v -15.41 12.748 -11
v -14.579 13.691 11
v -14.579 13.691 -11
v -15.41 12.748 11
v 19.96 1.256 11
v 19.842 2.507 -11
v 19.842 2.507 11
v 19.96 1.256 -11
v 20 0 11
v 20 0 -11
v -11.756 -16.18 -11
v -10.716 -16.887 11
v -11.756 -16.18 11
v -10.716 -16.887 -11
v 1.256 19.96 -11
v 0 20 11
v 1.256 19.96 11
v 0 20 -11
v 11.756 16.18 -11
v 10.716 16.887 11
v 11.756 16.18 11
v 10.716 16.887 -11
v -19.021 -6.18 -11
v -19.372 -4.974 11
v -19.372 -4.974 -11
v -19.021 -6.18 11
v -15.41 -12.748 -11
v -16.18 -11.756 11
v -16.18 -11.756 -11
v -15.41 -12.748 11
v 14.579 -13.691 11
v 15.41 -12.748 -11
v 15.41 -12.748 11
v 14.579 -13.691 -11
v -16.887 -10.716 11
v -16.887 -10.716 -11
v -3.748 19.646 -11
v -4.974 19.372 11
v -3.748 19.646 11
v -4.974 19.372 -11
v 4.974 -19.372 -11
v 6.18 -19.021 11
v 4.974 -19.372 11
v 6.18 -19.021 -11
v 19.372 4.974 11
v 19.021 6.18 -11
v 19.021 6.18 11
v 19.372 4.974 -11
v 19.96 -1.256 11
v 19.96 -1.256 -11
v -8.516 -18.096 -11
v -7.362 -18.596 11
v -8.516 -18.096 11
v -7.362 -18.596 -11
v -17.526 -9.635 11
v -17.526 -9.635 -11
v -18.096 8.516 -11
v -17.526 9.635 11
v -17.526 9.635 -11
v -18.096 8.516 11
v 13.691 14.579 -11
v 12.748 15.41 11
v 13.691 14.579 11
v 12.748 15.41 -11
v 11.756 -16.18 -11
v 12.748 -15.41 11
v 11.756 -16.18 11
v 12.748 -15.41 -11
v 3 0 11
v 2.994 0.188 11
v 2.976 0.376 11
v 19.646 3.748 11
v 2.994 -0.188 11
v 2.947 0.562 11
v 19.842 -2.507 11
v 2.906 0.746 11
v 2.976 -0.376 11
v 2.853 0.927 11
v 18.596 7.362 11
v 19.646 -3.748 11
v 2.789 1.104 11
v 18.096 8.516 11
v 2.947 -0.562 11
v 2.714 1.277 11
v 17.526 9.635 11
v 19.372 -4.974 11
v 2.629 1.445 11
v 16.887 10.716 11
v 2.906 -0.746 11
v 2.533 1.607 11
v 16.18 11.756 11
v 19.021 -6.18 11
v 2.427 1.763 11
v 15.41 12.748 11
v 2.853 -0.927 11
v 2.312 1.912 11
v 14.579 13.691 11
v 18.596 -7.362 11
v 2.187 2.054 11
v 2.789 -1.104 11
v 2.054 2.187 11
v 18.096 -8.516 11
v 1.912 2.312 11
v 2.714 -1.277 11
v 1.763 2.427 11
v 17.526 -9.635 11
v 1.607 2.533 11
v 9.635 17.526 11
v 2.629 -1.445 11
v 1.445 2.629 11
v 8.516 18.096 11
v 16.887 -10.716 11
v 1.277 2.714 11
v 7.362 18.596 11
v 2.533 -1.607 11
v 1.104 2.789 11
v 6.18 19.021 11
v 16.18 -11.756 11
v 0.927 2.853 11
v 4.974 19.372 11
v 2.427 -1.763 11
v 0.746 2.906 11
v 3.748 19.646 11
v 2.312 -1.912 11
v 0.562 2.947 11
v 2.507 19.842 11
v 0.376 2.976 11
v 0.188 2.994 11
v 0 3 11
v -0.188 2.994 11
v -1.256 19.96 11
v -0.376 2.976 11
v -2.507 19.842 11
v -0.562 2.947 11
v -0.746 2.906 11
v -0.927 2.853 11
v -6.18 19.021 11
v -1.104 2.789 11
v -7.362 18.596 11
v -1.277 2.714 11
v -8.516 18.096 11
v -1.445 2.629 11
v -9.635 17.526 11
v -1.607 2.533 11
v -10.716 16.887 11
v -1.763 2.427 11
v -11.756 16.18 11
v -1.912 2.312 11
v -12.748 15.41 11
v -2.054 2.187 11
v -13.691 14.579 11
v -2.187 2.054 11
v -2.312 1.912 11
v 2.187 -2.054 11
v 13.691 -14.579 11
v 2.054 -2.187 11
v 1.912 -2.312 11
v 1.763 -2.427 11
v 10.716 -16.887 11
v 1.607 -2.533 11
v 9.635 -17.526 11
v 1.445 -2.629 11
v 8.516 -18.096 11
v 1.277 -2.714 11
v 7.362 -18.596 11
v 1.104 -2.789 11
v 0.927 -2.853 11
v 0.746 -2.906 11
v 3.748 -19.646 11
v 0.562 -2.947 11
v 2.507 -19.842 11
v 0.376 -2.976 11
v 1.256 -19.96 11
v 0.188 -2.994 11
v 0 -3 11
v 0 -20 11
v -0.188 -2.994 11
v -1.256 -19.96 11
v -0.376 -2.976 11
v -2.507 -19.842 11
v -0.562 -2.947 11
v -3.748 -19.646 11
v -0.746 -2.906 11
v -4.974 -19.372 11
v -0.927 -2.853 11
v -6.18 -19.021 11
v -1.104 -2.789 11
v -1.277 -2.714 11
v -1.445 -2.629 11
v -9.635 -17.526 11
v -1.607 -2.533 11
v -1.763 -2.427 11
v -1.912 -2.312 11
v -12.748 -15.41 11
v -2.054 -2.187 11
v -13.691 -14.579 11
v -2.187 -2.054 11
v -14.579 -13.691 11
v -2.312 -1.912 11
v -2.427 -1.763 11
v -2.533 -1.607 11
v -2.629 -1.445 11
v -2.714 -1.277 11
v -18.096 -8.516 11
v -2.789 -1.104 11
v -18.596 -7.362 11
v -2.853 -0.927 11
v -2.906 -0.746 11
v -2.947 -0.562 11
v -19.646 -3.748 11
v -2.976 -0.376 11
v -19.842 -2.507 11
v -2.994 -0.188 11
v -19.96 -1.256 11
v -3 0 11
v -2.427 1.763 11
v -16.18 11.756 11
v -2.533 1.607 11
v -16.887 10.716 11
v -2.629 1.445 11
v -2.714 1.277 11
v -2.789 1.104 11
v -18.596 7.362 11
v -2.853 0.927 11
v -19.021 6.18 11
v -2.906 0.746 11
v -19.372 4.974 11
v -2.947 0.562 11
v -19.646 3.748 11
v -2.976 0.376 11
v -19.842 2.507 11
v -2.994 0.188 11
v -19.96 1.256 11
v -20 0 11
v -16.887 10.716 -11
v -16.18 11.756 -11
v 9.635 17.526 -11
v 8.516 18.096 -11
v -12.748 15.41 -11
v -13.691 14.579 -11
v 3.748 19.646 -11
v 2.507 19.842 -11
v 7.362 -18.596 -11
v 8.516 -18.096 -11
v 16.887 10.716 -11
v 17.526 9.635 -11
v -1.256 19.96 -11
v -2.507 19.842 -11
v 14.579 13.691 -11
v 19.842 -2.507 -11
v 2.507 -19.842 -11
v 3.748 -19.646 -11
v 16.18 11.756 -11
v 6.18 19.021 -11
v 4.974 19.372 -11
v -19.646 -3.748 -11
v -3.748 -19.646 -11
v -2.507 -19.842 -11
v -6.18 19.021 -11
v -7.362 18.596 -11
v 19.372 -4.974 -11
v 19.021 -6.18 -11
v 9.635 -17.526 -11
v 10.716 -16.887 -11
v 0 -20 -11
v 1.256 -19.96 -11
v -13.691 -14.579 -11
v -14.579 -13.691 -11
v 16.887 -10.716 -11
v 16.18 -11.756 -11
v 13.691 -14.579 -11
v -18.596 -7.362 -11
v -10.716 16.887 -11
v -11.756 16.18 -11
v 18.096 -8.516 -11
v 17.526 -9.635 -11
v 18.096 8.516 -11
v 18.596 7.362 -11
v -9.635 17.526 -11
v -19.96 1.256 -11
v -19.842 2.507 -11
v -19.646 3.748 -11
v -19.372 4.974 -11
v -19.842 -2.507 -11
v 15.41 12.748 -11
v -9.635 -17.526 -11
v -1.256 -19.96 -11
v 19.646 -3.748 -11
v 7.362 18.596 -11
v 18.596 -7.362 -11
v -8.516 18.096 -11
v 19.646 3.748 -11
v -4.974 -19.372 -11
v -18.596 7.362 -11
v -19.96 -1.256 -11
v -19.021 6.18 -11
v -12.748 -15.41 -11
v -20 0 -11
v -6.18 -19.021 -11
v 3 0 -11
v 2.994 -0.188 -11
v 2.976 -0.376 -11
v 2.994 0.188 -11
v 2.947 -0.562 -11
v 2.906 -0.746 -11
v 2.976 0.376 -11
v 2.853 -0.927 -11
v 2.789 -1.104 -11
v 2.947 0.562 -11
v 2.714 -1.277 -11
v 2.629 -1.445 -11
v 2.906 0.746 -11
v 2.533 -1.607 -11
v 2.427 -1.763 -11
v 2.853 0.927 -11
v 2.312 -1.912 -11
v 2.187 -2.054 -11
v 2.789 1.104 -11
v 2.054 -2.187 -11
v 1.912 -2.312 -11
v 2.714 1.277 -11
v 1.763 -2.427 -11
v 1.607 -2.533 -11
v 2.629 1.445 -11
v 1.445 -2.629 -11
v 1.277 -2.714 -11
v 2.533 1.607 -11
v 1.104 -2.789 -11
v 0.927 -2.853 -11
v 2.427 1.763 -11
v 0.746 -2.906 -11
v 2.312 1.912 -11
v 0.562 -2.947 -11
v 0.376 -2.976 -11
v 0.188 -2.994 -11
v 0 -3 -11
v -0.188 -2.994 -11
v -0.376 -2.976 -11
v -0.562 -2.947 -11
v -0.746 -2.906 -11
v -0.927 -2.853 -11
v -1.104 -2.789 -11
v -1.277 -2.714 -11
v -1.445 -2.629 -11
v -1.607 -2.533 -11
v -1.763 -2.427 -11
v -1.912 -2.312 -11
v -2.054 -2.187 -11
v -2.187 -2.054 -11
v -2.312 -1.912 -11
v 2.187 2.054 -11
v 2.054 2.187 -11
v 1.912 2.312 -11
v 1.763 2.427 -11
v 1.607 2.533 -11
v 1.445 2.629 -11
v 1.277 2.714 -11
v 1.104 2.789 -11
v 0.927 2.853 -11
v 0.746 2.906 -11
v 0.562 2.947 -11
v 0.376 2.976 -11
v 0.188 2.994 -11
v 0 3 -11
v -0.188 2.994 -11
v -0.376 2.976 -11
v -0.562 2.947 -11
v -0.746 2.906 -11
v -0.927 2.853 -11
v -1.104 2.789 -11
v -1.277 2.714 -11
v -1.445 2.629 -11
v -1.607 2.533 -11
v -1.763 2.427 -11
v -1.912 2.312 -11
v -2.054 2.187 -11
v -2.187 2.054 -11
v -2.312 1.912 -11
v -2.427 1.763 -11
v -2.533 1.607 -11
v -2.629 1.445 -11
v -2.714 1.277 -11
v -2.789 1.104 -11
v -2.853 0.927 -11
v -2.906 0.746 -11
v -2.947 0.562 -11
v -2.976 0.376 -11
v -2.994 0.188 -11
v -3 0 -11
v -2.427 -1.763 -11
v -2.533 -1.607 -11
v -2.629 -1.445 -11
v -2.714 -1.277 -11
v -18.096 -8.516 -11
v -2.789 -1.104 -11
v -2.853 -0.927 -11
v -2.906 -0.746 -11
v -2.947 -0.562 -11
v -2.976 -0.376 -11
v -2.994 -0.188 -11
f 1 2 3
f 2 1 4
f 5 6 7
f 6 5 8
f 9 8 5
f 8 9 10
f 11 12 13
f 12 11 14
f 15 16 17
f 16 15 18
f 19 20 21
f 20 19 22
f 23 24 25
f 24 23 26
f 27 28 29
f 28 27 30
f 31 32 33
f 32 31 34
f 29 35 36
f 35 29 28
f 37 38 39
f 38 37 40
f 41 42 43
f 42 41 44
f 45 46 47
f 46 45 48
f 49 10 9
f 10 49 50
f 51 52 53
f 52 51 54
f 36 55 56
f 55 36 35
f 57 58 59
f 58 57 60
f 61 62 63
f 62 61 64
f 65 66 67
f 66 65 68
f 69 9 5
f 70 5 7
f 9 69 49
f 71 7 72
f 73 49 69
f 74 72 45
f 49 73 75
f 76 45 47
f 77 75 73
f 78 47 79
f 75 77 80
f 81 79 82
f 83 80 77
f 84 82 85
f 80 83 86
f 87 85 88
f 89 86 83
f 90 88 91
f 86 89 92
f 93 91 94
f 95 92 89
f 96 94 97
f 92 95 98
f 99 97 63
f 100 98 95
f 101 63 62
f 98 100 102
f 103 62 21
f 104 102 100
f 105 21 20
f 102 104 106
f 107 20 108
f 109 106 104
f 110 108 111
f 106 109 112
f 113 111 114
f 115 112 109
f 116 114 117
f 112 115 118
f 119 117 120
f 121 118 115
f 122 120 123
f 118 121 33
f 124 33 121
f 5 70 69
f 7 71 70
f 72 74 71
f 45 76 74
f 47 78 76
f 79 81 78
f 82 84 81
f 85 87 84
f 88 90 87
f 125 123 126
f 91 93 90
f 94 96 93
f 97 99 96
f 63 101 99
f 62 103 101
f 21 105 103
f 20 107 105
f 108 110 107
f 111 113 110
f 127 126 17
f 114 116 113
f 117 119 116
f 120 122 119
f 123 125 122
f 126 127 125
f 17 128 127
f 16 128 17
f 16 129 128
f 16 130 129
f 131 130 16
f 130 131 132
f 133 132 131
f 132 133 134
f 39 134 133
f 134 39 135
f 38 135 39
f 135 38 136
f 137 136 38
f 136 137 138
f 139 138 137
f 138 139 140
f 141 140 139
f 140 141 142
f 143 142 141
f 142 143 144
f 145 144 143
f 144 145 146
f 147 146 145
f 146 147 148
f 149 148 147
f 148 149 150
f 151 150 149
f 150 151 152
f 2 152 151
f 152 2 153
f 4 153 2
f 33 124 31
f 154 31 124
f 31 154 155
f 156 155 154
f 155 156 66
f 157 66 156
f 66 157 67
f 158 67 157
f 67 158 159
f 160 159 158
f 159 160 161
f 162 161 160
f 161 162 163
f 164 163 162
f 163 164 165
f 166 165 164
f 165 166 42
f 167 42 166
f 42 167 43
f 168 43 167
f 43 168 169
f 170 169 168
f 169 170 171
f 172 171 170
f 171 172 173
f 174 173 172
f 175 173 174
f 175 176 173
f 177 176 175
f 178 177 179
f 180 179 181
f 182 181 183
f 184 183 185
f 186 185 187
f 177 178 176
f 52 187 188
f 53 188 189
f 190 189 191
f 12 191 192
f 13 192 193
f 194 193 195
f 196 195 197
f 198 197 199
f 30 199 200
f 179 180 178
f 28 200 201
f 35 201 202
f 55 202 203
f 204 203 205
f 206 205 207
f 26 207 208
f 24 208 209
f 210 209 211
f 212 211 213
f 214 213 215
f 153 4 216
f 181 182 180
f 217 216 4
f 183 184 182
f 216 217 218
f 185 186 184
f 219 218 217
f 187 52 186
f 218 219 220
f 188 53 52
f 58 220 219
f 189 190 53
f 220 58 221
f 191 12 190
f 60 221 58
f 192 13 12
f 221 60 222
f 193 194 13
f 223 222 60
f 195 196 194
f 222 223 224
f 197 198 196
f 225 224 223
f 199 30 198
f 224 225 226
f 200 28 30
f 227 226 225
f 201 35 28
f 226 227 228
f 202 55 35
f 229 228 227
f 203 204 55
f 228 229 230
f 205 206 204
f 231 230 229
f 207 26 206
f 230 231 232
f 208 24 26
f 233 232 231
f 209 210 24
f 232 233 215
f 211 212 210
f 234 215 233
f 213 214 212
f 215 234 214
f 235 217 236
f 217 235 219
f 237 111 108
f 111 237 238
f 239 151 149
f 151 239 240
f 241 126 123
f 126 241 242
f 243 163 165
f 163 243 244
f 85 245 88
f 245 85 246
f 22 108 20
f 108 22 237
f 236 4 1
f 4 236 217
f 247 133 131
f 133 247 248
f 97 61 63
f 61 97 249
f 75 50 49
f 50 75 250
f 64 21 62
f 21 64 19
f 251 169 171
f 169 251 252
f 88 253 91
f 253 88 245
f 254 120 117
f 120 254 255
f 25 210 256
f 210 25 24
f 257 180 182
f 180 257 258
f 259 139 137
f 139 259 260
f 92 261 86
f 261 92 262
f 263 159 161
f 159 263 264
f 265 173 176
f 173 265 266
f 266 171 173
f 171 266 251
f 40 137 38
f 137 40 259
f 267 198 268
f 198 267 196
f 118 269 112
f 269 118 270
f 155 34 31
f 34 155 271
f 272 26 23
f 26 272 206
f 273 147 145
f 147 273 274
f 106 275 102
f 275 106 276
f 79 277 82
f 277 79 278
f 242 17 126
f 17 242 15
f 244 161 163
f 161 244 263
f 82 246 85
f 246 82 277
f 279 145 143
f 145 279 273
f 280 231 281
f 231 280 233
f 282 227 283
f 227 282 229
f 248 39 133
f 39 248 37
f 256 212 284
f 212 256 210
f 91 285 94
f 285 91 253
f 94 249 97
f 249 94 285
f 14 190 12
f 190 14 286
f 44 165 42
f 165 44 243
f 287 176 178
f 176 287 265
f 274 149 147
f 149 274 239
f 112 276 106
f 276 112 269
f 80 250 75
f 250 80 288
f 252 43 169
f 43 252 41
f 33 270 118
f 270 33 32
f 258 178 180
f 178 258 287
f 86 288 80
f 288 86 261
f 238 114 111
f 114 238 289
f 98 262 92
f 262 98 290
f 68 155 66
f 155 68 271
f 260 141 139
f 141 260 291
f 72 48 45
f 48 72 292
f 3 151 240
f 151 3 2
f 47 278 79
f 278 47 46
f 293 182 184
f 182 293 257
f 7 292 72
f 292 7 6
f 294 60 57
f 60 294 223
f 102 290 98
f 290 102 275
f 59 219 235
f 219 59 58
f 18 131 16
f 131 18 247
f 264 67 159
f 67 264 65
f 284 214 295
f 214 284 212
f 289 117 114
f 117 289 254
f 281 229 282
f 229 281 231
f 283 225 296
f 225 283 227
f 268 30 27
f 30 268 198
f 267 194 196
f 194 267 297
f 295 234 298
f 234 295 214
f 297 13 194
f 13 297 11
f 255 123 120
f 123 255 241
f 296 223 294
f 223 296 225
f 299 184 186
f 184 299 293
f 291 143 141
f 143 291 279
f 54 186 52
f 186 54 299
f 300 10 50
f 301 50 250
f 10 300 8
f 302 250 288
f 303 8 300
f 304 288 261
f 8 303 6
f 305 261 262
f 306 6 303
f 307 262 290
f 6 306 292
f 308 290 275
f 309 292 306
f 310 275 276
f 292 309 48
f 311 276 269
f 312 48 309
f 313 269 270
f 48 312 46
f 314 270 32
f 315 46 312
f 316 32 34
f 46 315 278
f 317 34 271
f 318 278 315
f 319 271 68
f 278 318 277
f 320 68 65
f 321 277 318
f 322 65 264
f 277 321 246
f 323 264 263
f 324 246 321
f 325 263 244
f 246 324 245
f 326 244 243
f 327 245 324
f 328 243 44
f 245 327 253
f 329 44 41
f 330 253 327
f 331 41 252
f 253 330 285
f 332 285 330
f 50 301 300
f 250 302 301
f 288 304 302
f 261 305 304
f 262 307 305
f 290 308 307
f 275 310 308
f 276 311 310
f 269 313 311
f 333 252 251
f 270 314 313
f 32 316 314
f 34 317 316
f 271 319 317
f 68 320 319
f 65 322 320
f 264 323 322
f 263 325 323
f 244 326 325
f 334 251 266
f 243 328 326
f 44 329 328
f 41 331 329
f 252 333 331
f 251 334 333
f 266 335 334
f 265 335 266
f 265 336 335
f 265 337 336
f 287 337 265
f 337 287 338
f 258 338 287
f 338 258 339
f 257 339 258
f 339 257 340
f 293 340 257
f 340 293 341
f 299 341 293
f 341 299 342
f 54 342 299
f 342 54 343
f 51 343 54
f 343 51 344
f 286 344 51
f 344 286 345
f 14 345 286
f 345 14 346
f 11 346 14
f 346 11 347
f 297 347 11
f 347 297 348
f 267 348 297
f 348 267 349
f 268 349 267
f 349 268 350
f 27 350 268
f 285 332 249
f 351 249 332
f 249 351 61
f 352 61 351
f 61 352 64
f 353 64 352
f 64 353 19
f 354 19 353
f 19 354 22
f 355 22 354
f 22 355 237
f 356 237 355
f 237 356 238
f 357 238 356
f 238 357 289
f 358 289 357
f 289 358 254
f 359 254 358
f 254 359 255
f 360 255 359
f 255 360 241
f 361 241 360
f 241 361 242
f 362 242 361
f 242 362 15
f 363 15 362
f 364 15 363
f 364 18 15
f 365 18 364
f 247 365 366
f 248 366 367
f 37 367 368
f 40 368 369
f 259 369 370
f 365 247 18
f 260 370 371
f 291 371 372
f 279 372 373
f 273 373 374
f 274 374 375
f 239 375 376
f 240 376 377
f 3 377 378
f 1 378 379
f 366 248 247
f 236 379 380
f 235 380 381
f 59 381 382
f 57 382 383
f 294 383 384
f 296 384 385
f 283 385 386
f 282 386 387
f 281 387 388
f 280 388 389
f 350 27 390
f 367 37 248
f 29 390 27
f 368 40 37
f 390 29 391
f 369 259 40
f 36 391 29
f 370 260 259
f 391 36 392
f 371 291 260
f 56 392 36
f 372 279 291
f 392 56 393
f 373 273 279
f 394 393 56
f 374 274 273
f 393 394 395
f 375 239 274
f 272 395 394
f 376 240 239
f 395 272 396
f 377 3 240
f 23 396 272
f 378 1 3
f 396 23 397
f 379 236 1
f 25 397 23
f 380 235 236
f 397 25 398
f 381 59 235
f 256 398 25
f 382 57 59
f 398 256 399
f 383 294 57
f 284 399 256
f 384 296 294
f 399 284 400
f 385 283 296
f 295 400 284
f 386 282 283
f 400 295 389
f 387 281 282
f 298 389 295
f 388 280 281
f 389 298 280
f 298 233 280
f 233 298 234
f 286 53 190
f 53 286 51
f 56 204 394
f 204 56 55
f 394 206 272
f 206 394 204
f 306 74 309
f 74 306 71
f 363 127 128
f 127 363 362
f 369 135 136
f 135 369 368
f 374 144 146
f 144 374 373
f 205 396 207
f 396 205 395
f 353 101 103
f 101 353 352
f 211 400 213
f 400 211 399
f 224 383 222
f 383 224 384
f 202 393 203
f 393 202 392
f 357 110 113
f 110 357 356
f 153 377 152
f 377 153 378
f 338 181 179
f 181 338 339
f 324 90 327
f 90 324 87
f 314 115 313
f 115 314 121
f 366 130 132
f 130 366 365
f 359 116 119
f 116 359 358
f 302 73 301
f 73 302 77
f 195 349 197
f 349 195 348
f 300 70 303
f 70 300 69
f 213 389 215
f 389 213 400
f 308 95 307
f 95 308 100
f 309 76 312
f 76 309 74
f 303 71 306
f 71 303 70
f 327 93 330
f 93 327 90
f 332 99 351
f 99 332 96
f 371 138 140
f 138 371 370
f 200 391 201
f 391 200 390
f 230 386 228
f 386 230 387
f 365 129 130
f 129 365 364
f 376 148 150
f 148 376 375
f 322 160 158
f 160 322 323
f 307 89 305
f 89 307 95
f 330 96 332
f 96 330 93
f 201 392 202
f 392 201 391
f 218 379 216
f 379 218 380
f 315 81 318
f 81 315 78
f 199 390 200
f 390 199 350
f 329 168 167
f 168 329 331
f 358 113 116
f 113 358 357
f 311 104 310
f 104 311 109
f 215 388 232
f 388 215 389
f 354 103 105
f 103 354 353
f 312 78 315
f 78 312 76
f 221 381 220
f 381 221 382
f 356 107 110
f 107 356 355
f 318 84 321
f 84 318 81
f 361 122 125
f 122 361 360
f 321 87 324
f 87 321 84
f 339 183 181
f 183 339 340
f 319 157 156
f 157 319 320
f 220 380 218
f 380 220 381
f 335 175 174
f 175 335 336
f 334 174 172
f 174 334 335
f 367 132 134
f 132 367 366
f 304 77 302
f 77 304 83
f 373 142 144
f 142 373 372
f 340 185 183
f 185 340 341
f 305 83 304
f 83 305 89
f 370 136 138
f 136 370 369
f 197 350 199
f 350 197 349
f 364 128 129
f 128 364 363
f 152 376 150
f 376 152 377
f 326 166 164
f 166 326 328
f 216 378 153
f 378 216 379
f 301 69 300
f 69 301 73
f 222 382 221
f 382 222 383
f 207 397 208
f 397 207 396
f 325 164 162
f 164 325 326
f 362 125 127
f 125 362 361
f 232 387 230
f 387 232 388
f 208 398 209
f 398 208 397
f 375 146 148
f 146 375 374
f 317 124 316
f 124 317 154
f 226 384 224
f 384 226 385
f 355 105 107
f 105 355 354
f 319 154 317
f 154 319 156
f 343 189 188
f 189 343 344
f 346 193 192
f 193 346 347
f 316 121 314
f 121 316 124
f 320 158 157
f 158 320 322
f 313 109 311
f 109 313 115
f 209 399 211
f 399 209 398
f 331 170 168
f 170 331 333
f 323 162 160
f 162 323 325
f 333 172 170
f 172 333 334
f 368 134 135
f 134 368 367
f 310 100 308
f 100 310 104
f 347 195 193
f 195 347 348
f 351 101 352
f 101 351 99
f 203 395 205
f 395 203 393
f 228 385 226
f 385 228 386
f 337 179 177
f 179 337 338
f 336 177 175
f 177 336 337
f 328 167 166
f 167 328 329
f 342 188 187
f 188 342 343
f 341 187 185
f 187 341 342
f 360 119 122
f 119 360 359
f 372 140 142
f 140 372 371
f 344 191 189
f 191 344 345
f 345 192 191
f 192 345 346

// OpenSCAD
// Central Cylinder Parameters
cylinder_diameter = 40; // Diameter of the central cylinder
cylinder_height = 22;   // Increased height of the central cylinder to match the original model
hole_diameter = 6;      // Reduced diameter of the central hole to match the original model
$fn = 100;              // Increased resolution for smoother surface finish

// Central Cylinder Module
module central_cylinder() {
    difference() {
        // Main body of the cylinder
        cylinder(d = cylinder_diameter, h = cylinder_height, center = true);
        // Central hole
        cylinder(d = hole_diameter, h = cylinder_height + 2, center = true);
    }
}

// Render the central cylinder
central_cylinder();
